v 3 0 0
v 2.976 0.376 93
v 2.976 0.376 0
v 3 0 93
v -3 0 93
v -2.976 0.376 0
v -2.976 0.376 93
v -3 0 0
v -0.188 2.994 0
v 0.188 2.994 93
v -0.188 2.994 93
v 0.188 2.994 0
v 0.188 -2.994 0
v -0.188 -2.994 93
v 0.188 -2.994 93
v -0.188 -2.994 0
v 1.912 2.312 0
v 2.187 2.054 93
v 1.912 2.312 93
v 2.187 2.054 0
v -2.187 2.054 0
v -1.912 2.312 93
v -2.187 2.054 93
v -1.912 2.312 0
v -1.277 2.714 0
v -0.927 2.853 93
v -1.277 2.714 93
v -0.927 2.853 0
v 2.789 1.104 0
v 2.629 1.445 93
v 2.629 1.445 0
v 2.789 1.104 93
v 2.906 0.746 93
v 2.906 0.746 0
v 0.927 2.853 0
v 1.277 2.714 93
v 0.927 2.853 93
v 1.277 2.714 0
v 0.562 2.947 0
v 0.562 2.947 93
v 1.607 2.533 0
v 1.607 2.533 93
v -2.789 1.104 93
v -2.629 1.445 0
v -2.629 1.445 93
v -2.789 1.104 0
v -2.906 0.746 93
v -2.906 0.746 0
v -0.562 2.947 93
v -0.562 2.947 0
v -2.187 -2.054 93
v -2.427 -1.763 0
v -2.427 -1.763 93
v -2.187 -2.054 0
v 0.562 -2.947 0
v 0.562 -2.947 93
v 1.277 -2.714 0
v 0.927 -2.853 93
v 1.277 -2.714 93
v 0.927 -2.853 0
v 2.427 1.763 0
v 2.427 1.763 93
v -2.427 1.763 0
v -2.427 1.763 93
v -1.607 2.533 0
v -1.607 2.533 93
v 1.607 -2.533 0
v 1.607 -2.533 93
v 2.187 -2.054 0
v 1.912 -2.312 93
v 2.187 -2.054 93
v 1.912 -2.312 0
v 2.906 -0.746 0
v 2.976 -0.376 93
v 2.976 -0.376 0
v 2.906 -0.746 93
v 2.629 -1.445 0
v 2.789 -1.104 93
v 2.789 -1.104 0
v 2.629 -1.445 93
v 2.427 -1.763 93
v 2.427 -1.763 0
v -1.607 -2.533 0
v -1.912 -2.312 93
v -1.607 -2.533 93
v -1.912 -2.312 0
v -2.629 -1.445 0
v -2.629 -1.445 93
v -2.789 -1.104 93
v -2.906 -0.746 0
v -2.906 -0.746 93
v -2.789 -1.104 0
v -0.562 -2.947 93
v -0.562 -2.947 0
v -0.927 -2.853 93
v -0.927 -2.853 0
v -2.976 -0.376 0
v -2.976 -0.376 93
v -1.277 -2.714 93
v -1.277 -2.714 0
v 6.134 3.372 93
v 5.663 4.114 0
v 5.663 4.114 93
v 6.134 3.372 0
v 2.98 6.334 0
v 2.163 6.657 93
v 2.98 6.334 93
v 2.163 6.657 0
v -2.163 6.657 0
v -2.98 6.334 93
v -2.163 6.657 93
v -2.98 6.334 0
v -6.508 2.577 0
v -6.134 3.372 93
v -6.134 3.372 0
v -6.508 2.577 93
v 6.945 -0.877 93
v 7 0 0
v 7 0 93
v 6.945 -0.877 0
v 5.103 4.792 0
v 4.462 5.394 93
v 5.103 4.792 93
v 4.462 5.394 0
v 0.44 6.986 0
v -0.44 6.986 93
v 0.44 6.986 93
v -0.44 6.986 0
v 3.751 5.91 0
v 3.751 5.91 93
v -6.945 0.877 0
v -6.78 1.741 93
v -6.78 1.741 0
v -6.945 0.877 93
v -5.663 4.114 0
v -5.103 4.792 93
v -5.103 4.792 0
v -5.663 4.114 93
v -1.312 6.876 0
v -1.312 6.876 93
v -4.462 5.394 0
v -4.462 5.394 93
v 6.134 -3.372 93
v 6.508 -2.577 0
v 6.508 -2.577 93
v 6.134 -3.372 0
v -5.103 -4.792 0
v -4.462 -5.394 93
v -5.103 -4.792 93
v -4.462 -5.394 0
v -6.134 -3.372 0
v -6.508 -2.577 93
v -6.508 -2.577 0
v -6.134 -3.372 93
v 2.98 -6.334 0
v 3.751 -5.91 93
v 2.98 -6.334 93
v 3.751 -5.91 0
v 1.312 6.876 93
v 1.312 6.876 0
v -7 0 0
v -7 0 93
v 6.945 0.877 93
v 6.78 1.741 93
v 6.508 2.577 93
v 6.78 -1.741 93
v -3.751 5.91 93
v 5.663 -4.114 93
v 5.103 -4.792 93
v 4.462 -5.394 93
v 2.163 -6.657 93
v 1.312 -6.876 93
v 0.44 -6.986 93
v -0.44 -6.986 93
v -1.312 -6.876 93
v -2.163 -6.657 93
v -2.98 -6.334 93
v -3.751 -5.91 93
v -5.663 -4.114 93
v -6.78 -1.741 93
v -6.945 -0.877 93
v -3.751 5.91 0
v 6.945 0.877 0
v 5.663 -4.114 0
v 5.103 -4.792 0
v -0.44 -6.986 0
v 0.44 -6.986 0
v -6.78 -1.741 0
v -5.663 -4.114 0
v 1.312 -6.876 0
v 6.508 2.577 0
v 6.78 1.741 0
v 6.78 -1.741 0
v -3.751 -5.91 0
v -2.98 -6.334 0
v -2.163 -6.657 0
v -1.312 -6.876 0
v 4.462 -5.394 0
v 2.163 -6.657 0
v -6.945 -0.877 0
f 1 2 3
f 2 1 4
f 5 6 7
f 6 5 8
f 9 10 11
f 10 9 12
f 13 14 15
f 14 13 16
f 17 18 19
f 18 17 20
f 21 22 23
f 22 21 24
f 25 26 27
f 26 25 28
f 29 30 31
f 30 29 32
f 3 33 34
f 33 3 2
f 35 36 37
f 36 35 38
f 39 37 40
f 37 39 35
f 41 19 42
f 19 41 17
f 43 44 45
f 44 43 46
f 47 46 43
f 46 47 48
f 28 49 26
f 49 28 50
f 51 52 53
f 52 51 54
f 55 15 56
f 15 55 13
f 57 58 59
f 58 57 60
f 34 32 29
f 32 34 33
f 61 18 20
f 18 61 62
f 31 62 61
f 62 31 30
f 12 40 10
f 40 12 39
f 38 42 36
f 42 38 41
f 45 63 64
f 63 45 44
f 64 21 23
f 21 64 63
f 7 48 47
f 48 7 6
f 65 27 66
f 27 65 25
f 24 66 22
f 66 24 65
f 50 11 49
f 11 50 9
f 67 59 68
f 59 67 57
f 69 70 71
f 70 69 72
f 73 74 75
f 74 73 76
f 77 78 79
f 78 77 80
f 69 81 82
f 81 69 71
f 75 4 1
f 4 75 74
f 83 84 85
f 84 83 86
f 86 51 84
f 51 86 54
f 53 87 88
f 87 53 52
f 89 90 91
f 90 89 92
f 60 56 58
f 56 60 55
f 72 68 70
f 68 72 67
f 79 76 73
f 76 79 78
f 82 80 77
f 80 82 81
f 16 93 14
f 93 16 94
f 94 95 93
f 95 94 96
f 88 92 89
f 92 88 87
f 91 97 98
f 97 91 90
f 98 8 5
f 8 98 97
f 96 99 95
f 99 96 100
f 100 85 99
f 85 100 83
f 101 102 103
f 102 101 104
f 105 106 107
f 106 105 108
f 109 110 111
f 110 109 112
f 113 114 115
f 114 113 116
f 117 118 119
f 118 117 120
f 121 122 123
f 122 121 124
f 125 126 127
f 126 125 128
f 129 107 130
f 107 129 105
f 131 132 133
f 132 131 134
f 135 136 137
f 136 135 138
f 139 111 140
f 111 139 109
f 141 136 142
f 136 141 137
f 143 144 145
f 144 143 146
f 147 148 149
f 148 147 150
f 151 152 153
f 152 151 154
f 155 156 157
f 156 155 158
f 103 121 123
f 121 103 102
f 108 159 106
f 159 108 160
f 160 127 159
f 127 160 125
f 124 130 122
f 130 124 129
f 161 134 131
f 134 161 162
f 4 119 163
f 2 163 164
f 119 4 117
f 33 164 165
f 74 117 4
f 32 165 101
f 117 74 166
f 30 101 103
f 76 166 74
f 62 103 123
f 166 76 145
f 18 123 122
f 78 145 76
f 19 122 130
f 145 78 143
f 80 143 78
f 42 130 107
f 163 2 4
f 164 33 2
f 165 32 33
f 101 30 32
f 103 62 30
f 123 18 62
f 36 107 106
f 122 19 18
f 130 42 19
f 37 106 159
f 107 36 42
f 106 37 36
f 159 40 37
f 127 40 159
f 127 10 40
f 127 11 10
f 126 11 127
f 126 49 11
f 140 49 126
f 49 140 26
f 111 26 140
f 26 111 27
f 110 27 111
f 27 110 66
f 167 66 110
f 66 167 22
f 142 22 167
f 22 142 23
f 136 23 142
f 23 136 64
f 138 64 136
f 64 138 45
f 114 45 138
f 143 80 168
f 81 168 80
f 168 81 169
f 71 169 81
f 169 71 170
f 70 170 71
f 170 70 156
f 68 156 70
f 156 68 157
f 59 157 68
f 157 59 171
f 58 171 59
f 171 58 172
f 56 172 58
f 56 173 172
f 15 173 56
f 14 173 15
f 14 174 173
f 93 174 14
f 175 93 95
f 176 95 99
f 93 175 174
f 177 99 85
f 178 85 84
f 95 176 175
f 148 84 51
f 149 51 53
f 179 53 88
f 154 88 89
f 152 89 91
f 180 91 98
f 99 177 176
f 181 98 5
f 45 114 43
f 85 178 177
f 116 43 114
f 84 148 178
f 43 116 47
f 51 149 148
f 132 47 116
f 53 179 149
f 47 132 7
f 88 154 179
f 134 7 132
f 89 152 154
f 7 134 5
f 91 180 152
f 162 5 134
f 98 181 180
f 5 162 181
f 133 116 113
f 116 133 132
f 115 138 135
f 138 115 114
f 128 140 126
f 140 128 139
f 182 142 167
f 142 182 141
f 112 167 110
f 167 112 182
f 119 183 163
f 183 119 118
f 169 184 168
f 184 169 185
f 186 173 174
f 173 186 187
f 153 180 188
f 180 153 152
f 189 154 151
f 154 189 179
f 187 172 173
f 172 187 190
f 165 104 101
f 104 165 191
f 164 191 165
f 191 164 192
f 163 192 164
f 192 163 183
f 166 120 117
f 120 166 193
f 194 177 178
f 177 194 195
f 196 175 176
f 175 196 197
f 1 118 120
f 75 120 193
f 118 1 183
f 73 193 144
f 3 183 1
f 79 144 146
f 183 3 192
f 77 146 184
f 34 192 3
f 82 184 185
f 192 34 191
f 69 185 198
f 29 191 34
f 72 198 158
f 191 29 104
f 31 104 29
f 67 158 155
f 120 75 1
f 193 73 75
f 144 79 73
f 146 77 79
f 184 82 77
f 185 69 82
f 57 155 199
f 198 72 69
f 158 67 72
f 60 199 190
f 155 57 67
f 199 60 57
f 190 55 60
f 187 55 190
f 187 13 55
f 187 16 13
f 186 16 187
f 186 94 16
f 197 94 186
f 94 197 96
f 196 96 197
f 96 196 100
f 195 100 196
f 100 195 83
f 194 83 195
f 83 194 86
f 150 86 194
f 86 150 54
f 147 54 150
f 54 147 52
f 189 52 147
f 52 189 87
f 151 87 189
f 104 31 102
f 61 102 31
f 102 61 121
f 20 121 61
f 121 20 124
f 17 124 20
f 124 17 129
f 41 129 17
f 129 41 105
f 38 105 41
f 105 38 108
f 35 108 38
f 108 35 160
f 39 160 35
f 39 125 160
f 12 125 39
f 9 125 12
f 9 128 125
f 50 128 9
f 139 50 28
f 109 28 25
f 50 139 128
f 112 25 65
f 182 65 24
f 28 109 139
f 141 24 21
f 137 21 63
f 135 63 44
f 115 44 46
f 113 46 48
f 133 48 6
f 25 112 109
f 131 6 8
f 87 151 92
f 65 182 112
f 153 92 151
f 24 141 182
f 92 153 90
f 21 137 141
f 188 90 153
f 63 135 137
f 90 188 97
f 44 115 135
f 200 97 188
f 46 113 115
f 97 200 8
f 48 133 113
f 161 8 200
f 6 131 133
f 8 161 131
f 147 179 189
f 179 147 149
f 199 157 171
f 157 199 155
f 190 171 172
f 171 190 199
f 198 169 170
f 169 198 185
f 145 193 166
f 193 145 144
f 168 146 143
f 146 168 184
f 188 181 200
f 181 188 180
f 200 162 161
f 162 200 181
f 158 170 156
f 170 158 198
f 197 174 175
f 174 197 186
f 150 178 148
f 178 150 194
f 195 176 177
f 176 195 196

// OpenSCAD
$fn = 50;


difference() {
	union() {
		cylinder(h = 93, r = 7.0000000000);
	}
	union() {
		translate(v = [0, 0, -100]) {
			cylinder(h = 200, r = 3.0000000000);
		}
	}
}
